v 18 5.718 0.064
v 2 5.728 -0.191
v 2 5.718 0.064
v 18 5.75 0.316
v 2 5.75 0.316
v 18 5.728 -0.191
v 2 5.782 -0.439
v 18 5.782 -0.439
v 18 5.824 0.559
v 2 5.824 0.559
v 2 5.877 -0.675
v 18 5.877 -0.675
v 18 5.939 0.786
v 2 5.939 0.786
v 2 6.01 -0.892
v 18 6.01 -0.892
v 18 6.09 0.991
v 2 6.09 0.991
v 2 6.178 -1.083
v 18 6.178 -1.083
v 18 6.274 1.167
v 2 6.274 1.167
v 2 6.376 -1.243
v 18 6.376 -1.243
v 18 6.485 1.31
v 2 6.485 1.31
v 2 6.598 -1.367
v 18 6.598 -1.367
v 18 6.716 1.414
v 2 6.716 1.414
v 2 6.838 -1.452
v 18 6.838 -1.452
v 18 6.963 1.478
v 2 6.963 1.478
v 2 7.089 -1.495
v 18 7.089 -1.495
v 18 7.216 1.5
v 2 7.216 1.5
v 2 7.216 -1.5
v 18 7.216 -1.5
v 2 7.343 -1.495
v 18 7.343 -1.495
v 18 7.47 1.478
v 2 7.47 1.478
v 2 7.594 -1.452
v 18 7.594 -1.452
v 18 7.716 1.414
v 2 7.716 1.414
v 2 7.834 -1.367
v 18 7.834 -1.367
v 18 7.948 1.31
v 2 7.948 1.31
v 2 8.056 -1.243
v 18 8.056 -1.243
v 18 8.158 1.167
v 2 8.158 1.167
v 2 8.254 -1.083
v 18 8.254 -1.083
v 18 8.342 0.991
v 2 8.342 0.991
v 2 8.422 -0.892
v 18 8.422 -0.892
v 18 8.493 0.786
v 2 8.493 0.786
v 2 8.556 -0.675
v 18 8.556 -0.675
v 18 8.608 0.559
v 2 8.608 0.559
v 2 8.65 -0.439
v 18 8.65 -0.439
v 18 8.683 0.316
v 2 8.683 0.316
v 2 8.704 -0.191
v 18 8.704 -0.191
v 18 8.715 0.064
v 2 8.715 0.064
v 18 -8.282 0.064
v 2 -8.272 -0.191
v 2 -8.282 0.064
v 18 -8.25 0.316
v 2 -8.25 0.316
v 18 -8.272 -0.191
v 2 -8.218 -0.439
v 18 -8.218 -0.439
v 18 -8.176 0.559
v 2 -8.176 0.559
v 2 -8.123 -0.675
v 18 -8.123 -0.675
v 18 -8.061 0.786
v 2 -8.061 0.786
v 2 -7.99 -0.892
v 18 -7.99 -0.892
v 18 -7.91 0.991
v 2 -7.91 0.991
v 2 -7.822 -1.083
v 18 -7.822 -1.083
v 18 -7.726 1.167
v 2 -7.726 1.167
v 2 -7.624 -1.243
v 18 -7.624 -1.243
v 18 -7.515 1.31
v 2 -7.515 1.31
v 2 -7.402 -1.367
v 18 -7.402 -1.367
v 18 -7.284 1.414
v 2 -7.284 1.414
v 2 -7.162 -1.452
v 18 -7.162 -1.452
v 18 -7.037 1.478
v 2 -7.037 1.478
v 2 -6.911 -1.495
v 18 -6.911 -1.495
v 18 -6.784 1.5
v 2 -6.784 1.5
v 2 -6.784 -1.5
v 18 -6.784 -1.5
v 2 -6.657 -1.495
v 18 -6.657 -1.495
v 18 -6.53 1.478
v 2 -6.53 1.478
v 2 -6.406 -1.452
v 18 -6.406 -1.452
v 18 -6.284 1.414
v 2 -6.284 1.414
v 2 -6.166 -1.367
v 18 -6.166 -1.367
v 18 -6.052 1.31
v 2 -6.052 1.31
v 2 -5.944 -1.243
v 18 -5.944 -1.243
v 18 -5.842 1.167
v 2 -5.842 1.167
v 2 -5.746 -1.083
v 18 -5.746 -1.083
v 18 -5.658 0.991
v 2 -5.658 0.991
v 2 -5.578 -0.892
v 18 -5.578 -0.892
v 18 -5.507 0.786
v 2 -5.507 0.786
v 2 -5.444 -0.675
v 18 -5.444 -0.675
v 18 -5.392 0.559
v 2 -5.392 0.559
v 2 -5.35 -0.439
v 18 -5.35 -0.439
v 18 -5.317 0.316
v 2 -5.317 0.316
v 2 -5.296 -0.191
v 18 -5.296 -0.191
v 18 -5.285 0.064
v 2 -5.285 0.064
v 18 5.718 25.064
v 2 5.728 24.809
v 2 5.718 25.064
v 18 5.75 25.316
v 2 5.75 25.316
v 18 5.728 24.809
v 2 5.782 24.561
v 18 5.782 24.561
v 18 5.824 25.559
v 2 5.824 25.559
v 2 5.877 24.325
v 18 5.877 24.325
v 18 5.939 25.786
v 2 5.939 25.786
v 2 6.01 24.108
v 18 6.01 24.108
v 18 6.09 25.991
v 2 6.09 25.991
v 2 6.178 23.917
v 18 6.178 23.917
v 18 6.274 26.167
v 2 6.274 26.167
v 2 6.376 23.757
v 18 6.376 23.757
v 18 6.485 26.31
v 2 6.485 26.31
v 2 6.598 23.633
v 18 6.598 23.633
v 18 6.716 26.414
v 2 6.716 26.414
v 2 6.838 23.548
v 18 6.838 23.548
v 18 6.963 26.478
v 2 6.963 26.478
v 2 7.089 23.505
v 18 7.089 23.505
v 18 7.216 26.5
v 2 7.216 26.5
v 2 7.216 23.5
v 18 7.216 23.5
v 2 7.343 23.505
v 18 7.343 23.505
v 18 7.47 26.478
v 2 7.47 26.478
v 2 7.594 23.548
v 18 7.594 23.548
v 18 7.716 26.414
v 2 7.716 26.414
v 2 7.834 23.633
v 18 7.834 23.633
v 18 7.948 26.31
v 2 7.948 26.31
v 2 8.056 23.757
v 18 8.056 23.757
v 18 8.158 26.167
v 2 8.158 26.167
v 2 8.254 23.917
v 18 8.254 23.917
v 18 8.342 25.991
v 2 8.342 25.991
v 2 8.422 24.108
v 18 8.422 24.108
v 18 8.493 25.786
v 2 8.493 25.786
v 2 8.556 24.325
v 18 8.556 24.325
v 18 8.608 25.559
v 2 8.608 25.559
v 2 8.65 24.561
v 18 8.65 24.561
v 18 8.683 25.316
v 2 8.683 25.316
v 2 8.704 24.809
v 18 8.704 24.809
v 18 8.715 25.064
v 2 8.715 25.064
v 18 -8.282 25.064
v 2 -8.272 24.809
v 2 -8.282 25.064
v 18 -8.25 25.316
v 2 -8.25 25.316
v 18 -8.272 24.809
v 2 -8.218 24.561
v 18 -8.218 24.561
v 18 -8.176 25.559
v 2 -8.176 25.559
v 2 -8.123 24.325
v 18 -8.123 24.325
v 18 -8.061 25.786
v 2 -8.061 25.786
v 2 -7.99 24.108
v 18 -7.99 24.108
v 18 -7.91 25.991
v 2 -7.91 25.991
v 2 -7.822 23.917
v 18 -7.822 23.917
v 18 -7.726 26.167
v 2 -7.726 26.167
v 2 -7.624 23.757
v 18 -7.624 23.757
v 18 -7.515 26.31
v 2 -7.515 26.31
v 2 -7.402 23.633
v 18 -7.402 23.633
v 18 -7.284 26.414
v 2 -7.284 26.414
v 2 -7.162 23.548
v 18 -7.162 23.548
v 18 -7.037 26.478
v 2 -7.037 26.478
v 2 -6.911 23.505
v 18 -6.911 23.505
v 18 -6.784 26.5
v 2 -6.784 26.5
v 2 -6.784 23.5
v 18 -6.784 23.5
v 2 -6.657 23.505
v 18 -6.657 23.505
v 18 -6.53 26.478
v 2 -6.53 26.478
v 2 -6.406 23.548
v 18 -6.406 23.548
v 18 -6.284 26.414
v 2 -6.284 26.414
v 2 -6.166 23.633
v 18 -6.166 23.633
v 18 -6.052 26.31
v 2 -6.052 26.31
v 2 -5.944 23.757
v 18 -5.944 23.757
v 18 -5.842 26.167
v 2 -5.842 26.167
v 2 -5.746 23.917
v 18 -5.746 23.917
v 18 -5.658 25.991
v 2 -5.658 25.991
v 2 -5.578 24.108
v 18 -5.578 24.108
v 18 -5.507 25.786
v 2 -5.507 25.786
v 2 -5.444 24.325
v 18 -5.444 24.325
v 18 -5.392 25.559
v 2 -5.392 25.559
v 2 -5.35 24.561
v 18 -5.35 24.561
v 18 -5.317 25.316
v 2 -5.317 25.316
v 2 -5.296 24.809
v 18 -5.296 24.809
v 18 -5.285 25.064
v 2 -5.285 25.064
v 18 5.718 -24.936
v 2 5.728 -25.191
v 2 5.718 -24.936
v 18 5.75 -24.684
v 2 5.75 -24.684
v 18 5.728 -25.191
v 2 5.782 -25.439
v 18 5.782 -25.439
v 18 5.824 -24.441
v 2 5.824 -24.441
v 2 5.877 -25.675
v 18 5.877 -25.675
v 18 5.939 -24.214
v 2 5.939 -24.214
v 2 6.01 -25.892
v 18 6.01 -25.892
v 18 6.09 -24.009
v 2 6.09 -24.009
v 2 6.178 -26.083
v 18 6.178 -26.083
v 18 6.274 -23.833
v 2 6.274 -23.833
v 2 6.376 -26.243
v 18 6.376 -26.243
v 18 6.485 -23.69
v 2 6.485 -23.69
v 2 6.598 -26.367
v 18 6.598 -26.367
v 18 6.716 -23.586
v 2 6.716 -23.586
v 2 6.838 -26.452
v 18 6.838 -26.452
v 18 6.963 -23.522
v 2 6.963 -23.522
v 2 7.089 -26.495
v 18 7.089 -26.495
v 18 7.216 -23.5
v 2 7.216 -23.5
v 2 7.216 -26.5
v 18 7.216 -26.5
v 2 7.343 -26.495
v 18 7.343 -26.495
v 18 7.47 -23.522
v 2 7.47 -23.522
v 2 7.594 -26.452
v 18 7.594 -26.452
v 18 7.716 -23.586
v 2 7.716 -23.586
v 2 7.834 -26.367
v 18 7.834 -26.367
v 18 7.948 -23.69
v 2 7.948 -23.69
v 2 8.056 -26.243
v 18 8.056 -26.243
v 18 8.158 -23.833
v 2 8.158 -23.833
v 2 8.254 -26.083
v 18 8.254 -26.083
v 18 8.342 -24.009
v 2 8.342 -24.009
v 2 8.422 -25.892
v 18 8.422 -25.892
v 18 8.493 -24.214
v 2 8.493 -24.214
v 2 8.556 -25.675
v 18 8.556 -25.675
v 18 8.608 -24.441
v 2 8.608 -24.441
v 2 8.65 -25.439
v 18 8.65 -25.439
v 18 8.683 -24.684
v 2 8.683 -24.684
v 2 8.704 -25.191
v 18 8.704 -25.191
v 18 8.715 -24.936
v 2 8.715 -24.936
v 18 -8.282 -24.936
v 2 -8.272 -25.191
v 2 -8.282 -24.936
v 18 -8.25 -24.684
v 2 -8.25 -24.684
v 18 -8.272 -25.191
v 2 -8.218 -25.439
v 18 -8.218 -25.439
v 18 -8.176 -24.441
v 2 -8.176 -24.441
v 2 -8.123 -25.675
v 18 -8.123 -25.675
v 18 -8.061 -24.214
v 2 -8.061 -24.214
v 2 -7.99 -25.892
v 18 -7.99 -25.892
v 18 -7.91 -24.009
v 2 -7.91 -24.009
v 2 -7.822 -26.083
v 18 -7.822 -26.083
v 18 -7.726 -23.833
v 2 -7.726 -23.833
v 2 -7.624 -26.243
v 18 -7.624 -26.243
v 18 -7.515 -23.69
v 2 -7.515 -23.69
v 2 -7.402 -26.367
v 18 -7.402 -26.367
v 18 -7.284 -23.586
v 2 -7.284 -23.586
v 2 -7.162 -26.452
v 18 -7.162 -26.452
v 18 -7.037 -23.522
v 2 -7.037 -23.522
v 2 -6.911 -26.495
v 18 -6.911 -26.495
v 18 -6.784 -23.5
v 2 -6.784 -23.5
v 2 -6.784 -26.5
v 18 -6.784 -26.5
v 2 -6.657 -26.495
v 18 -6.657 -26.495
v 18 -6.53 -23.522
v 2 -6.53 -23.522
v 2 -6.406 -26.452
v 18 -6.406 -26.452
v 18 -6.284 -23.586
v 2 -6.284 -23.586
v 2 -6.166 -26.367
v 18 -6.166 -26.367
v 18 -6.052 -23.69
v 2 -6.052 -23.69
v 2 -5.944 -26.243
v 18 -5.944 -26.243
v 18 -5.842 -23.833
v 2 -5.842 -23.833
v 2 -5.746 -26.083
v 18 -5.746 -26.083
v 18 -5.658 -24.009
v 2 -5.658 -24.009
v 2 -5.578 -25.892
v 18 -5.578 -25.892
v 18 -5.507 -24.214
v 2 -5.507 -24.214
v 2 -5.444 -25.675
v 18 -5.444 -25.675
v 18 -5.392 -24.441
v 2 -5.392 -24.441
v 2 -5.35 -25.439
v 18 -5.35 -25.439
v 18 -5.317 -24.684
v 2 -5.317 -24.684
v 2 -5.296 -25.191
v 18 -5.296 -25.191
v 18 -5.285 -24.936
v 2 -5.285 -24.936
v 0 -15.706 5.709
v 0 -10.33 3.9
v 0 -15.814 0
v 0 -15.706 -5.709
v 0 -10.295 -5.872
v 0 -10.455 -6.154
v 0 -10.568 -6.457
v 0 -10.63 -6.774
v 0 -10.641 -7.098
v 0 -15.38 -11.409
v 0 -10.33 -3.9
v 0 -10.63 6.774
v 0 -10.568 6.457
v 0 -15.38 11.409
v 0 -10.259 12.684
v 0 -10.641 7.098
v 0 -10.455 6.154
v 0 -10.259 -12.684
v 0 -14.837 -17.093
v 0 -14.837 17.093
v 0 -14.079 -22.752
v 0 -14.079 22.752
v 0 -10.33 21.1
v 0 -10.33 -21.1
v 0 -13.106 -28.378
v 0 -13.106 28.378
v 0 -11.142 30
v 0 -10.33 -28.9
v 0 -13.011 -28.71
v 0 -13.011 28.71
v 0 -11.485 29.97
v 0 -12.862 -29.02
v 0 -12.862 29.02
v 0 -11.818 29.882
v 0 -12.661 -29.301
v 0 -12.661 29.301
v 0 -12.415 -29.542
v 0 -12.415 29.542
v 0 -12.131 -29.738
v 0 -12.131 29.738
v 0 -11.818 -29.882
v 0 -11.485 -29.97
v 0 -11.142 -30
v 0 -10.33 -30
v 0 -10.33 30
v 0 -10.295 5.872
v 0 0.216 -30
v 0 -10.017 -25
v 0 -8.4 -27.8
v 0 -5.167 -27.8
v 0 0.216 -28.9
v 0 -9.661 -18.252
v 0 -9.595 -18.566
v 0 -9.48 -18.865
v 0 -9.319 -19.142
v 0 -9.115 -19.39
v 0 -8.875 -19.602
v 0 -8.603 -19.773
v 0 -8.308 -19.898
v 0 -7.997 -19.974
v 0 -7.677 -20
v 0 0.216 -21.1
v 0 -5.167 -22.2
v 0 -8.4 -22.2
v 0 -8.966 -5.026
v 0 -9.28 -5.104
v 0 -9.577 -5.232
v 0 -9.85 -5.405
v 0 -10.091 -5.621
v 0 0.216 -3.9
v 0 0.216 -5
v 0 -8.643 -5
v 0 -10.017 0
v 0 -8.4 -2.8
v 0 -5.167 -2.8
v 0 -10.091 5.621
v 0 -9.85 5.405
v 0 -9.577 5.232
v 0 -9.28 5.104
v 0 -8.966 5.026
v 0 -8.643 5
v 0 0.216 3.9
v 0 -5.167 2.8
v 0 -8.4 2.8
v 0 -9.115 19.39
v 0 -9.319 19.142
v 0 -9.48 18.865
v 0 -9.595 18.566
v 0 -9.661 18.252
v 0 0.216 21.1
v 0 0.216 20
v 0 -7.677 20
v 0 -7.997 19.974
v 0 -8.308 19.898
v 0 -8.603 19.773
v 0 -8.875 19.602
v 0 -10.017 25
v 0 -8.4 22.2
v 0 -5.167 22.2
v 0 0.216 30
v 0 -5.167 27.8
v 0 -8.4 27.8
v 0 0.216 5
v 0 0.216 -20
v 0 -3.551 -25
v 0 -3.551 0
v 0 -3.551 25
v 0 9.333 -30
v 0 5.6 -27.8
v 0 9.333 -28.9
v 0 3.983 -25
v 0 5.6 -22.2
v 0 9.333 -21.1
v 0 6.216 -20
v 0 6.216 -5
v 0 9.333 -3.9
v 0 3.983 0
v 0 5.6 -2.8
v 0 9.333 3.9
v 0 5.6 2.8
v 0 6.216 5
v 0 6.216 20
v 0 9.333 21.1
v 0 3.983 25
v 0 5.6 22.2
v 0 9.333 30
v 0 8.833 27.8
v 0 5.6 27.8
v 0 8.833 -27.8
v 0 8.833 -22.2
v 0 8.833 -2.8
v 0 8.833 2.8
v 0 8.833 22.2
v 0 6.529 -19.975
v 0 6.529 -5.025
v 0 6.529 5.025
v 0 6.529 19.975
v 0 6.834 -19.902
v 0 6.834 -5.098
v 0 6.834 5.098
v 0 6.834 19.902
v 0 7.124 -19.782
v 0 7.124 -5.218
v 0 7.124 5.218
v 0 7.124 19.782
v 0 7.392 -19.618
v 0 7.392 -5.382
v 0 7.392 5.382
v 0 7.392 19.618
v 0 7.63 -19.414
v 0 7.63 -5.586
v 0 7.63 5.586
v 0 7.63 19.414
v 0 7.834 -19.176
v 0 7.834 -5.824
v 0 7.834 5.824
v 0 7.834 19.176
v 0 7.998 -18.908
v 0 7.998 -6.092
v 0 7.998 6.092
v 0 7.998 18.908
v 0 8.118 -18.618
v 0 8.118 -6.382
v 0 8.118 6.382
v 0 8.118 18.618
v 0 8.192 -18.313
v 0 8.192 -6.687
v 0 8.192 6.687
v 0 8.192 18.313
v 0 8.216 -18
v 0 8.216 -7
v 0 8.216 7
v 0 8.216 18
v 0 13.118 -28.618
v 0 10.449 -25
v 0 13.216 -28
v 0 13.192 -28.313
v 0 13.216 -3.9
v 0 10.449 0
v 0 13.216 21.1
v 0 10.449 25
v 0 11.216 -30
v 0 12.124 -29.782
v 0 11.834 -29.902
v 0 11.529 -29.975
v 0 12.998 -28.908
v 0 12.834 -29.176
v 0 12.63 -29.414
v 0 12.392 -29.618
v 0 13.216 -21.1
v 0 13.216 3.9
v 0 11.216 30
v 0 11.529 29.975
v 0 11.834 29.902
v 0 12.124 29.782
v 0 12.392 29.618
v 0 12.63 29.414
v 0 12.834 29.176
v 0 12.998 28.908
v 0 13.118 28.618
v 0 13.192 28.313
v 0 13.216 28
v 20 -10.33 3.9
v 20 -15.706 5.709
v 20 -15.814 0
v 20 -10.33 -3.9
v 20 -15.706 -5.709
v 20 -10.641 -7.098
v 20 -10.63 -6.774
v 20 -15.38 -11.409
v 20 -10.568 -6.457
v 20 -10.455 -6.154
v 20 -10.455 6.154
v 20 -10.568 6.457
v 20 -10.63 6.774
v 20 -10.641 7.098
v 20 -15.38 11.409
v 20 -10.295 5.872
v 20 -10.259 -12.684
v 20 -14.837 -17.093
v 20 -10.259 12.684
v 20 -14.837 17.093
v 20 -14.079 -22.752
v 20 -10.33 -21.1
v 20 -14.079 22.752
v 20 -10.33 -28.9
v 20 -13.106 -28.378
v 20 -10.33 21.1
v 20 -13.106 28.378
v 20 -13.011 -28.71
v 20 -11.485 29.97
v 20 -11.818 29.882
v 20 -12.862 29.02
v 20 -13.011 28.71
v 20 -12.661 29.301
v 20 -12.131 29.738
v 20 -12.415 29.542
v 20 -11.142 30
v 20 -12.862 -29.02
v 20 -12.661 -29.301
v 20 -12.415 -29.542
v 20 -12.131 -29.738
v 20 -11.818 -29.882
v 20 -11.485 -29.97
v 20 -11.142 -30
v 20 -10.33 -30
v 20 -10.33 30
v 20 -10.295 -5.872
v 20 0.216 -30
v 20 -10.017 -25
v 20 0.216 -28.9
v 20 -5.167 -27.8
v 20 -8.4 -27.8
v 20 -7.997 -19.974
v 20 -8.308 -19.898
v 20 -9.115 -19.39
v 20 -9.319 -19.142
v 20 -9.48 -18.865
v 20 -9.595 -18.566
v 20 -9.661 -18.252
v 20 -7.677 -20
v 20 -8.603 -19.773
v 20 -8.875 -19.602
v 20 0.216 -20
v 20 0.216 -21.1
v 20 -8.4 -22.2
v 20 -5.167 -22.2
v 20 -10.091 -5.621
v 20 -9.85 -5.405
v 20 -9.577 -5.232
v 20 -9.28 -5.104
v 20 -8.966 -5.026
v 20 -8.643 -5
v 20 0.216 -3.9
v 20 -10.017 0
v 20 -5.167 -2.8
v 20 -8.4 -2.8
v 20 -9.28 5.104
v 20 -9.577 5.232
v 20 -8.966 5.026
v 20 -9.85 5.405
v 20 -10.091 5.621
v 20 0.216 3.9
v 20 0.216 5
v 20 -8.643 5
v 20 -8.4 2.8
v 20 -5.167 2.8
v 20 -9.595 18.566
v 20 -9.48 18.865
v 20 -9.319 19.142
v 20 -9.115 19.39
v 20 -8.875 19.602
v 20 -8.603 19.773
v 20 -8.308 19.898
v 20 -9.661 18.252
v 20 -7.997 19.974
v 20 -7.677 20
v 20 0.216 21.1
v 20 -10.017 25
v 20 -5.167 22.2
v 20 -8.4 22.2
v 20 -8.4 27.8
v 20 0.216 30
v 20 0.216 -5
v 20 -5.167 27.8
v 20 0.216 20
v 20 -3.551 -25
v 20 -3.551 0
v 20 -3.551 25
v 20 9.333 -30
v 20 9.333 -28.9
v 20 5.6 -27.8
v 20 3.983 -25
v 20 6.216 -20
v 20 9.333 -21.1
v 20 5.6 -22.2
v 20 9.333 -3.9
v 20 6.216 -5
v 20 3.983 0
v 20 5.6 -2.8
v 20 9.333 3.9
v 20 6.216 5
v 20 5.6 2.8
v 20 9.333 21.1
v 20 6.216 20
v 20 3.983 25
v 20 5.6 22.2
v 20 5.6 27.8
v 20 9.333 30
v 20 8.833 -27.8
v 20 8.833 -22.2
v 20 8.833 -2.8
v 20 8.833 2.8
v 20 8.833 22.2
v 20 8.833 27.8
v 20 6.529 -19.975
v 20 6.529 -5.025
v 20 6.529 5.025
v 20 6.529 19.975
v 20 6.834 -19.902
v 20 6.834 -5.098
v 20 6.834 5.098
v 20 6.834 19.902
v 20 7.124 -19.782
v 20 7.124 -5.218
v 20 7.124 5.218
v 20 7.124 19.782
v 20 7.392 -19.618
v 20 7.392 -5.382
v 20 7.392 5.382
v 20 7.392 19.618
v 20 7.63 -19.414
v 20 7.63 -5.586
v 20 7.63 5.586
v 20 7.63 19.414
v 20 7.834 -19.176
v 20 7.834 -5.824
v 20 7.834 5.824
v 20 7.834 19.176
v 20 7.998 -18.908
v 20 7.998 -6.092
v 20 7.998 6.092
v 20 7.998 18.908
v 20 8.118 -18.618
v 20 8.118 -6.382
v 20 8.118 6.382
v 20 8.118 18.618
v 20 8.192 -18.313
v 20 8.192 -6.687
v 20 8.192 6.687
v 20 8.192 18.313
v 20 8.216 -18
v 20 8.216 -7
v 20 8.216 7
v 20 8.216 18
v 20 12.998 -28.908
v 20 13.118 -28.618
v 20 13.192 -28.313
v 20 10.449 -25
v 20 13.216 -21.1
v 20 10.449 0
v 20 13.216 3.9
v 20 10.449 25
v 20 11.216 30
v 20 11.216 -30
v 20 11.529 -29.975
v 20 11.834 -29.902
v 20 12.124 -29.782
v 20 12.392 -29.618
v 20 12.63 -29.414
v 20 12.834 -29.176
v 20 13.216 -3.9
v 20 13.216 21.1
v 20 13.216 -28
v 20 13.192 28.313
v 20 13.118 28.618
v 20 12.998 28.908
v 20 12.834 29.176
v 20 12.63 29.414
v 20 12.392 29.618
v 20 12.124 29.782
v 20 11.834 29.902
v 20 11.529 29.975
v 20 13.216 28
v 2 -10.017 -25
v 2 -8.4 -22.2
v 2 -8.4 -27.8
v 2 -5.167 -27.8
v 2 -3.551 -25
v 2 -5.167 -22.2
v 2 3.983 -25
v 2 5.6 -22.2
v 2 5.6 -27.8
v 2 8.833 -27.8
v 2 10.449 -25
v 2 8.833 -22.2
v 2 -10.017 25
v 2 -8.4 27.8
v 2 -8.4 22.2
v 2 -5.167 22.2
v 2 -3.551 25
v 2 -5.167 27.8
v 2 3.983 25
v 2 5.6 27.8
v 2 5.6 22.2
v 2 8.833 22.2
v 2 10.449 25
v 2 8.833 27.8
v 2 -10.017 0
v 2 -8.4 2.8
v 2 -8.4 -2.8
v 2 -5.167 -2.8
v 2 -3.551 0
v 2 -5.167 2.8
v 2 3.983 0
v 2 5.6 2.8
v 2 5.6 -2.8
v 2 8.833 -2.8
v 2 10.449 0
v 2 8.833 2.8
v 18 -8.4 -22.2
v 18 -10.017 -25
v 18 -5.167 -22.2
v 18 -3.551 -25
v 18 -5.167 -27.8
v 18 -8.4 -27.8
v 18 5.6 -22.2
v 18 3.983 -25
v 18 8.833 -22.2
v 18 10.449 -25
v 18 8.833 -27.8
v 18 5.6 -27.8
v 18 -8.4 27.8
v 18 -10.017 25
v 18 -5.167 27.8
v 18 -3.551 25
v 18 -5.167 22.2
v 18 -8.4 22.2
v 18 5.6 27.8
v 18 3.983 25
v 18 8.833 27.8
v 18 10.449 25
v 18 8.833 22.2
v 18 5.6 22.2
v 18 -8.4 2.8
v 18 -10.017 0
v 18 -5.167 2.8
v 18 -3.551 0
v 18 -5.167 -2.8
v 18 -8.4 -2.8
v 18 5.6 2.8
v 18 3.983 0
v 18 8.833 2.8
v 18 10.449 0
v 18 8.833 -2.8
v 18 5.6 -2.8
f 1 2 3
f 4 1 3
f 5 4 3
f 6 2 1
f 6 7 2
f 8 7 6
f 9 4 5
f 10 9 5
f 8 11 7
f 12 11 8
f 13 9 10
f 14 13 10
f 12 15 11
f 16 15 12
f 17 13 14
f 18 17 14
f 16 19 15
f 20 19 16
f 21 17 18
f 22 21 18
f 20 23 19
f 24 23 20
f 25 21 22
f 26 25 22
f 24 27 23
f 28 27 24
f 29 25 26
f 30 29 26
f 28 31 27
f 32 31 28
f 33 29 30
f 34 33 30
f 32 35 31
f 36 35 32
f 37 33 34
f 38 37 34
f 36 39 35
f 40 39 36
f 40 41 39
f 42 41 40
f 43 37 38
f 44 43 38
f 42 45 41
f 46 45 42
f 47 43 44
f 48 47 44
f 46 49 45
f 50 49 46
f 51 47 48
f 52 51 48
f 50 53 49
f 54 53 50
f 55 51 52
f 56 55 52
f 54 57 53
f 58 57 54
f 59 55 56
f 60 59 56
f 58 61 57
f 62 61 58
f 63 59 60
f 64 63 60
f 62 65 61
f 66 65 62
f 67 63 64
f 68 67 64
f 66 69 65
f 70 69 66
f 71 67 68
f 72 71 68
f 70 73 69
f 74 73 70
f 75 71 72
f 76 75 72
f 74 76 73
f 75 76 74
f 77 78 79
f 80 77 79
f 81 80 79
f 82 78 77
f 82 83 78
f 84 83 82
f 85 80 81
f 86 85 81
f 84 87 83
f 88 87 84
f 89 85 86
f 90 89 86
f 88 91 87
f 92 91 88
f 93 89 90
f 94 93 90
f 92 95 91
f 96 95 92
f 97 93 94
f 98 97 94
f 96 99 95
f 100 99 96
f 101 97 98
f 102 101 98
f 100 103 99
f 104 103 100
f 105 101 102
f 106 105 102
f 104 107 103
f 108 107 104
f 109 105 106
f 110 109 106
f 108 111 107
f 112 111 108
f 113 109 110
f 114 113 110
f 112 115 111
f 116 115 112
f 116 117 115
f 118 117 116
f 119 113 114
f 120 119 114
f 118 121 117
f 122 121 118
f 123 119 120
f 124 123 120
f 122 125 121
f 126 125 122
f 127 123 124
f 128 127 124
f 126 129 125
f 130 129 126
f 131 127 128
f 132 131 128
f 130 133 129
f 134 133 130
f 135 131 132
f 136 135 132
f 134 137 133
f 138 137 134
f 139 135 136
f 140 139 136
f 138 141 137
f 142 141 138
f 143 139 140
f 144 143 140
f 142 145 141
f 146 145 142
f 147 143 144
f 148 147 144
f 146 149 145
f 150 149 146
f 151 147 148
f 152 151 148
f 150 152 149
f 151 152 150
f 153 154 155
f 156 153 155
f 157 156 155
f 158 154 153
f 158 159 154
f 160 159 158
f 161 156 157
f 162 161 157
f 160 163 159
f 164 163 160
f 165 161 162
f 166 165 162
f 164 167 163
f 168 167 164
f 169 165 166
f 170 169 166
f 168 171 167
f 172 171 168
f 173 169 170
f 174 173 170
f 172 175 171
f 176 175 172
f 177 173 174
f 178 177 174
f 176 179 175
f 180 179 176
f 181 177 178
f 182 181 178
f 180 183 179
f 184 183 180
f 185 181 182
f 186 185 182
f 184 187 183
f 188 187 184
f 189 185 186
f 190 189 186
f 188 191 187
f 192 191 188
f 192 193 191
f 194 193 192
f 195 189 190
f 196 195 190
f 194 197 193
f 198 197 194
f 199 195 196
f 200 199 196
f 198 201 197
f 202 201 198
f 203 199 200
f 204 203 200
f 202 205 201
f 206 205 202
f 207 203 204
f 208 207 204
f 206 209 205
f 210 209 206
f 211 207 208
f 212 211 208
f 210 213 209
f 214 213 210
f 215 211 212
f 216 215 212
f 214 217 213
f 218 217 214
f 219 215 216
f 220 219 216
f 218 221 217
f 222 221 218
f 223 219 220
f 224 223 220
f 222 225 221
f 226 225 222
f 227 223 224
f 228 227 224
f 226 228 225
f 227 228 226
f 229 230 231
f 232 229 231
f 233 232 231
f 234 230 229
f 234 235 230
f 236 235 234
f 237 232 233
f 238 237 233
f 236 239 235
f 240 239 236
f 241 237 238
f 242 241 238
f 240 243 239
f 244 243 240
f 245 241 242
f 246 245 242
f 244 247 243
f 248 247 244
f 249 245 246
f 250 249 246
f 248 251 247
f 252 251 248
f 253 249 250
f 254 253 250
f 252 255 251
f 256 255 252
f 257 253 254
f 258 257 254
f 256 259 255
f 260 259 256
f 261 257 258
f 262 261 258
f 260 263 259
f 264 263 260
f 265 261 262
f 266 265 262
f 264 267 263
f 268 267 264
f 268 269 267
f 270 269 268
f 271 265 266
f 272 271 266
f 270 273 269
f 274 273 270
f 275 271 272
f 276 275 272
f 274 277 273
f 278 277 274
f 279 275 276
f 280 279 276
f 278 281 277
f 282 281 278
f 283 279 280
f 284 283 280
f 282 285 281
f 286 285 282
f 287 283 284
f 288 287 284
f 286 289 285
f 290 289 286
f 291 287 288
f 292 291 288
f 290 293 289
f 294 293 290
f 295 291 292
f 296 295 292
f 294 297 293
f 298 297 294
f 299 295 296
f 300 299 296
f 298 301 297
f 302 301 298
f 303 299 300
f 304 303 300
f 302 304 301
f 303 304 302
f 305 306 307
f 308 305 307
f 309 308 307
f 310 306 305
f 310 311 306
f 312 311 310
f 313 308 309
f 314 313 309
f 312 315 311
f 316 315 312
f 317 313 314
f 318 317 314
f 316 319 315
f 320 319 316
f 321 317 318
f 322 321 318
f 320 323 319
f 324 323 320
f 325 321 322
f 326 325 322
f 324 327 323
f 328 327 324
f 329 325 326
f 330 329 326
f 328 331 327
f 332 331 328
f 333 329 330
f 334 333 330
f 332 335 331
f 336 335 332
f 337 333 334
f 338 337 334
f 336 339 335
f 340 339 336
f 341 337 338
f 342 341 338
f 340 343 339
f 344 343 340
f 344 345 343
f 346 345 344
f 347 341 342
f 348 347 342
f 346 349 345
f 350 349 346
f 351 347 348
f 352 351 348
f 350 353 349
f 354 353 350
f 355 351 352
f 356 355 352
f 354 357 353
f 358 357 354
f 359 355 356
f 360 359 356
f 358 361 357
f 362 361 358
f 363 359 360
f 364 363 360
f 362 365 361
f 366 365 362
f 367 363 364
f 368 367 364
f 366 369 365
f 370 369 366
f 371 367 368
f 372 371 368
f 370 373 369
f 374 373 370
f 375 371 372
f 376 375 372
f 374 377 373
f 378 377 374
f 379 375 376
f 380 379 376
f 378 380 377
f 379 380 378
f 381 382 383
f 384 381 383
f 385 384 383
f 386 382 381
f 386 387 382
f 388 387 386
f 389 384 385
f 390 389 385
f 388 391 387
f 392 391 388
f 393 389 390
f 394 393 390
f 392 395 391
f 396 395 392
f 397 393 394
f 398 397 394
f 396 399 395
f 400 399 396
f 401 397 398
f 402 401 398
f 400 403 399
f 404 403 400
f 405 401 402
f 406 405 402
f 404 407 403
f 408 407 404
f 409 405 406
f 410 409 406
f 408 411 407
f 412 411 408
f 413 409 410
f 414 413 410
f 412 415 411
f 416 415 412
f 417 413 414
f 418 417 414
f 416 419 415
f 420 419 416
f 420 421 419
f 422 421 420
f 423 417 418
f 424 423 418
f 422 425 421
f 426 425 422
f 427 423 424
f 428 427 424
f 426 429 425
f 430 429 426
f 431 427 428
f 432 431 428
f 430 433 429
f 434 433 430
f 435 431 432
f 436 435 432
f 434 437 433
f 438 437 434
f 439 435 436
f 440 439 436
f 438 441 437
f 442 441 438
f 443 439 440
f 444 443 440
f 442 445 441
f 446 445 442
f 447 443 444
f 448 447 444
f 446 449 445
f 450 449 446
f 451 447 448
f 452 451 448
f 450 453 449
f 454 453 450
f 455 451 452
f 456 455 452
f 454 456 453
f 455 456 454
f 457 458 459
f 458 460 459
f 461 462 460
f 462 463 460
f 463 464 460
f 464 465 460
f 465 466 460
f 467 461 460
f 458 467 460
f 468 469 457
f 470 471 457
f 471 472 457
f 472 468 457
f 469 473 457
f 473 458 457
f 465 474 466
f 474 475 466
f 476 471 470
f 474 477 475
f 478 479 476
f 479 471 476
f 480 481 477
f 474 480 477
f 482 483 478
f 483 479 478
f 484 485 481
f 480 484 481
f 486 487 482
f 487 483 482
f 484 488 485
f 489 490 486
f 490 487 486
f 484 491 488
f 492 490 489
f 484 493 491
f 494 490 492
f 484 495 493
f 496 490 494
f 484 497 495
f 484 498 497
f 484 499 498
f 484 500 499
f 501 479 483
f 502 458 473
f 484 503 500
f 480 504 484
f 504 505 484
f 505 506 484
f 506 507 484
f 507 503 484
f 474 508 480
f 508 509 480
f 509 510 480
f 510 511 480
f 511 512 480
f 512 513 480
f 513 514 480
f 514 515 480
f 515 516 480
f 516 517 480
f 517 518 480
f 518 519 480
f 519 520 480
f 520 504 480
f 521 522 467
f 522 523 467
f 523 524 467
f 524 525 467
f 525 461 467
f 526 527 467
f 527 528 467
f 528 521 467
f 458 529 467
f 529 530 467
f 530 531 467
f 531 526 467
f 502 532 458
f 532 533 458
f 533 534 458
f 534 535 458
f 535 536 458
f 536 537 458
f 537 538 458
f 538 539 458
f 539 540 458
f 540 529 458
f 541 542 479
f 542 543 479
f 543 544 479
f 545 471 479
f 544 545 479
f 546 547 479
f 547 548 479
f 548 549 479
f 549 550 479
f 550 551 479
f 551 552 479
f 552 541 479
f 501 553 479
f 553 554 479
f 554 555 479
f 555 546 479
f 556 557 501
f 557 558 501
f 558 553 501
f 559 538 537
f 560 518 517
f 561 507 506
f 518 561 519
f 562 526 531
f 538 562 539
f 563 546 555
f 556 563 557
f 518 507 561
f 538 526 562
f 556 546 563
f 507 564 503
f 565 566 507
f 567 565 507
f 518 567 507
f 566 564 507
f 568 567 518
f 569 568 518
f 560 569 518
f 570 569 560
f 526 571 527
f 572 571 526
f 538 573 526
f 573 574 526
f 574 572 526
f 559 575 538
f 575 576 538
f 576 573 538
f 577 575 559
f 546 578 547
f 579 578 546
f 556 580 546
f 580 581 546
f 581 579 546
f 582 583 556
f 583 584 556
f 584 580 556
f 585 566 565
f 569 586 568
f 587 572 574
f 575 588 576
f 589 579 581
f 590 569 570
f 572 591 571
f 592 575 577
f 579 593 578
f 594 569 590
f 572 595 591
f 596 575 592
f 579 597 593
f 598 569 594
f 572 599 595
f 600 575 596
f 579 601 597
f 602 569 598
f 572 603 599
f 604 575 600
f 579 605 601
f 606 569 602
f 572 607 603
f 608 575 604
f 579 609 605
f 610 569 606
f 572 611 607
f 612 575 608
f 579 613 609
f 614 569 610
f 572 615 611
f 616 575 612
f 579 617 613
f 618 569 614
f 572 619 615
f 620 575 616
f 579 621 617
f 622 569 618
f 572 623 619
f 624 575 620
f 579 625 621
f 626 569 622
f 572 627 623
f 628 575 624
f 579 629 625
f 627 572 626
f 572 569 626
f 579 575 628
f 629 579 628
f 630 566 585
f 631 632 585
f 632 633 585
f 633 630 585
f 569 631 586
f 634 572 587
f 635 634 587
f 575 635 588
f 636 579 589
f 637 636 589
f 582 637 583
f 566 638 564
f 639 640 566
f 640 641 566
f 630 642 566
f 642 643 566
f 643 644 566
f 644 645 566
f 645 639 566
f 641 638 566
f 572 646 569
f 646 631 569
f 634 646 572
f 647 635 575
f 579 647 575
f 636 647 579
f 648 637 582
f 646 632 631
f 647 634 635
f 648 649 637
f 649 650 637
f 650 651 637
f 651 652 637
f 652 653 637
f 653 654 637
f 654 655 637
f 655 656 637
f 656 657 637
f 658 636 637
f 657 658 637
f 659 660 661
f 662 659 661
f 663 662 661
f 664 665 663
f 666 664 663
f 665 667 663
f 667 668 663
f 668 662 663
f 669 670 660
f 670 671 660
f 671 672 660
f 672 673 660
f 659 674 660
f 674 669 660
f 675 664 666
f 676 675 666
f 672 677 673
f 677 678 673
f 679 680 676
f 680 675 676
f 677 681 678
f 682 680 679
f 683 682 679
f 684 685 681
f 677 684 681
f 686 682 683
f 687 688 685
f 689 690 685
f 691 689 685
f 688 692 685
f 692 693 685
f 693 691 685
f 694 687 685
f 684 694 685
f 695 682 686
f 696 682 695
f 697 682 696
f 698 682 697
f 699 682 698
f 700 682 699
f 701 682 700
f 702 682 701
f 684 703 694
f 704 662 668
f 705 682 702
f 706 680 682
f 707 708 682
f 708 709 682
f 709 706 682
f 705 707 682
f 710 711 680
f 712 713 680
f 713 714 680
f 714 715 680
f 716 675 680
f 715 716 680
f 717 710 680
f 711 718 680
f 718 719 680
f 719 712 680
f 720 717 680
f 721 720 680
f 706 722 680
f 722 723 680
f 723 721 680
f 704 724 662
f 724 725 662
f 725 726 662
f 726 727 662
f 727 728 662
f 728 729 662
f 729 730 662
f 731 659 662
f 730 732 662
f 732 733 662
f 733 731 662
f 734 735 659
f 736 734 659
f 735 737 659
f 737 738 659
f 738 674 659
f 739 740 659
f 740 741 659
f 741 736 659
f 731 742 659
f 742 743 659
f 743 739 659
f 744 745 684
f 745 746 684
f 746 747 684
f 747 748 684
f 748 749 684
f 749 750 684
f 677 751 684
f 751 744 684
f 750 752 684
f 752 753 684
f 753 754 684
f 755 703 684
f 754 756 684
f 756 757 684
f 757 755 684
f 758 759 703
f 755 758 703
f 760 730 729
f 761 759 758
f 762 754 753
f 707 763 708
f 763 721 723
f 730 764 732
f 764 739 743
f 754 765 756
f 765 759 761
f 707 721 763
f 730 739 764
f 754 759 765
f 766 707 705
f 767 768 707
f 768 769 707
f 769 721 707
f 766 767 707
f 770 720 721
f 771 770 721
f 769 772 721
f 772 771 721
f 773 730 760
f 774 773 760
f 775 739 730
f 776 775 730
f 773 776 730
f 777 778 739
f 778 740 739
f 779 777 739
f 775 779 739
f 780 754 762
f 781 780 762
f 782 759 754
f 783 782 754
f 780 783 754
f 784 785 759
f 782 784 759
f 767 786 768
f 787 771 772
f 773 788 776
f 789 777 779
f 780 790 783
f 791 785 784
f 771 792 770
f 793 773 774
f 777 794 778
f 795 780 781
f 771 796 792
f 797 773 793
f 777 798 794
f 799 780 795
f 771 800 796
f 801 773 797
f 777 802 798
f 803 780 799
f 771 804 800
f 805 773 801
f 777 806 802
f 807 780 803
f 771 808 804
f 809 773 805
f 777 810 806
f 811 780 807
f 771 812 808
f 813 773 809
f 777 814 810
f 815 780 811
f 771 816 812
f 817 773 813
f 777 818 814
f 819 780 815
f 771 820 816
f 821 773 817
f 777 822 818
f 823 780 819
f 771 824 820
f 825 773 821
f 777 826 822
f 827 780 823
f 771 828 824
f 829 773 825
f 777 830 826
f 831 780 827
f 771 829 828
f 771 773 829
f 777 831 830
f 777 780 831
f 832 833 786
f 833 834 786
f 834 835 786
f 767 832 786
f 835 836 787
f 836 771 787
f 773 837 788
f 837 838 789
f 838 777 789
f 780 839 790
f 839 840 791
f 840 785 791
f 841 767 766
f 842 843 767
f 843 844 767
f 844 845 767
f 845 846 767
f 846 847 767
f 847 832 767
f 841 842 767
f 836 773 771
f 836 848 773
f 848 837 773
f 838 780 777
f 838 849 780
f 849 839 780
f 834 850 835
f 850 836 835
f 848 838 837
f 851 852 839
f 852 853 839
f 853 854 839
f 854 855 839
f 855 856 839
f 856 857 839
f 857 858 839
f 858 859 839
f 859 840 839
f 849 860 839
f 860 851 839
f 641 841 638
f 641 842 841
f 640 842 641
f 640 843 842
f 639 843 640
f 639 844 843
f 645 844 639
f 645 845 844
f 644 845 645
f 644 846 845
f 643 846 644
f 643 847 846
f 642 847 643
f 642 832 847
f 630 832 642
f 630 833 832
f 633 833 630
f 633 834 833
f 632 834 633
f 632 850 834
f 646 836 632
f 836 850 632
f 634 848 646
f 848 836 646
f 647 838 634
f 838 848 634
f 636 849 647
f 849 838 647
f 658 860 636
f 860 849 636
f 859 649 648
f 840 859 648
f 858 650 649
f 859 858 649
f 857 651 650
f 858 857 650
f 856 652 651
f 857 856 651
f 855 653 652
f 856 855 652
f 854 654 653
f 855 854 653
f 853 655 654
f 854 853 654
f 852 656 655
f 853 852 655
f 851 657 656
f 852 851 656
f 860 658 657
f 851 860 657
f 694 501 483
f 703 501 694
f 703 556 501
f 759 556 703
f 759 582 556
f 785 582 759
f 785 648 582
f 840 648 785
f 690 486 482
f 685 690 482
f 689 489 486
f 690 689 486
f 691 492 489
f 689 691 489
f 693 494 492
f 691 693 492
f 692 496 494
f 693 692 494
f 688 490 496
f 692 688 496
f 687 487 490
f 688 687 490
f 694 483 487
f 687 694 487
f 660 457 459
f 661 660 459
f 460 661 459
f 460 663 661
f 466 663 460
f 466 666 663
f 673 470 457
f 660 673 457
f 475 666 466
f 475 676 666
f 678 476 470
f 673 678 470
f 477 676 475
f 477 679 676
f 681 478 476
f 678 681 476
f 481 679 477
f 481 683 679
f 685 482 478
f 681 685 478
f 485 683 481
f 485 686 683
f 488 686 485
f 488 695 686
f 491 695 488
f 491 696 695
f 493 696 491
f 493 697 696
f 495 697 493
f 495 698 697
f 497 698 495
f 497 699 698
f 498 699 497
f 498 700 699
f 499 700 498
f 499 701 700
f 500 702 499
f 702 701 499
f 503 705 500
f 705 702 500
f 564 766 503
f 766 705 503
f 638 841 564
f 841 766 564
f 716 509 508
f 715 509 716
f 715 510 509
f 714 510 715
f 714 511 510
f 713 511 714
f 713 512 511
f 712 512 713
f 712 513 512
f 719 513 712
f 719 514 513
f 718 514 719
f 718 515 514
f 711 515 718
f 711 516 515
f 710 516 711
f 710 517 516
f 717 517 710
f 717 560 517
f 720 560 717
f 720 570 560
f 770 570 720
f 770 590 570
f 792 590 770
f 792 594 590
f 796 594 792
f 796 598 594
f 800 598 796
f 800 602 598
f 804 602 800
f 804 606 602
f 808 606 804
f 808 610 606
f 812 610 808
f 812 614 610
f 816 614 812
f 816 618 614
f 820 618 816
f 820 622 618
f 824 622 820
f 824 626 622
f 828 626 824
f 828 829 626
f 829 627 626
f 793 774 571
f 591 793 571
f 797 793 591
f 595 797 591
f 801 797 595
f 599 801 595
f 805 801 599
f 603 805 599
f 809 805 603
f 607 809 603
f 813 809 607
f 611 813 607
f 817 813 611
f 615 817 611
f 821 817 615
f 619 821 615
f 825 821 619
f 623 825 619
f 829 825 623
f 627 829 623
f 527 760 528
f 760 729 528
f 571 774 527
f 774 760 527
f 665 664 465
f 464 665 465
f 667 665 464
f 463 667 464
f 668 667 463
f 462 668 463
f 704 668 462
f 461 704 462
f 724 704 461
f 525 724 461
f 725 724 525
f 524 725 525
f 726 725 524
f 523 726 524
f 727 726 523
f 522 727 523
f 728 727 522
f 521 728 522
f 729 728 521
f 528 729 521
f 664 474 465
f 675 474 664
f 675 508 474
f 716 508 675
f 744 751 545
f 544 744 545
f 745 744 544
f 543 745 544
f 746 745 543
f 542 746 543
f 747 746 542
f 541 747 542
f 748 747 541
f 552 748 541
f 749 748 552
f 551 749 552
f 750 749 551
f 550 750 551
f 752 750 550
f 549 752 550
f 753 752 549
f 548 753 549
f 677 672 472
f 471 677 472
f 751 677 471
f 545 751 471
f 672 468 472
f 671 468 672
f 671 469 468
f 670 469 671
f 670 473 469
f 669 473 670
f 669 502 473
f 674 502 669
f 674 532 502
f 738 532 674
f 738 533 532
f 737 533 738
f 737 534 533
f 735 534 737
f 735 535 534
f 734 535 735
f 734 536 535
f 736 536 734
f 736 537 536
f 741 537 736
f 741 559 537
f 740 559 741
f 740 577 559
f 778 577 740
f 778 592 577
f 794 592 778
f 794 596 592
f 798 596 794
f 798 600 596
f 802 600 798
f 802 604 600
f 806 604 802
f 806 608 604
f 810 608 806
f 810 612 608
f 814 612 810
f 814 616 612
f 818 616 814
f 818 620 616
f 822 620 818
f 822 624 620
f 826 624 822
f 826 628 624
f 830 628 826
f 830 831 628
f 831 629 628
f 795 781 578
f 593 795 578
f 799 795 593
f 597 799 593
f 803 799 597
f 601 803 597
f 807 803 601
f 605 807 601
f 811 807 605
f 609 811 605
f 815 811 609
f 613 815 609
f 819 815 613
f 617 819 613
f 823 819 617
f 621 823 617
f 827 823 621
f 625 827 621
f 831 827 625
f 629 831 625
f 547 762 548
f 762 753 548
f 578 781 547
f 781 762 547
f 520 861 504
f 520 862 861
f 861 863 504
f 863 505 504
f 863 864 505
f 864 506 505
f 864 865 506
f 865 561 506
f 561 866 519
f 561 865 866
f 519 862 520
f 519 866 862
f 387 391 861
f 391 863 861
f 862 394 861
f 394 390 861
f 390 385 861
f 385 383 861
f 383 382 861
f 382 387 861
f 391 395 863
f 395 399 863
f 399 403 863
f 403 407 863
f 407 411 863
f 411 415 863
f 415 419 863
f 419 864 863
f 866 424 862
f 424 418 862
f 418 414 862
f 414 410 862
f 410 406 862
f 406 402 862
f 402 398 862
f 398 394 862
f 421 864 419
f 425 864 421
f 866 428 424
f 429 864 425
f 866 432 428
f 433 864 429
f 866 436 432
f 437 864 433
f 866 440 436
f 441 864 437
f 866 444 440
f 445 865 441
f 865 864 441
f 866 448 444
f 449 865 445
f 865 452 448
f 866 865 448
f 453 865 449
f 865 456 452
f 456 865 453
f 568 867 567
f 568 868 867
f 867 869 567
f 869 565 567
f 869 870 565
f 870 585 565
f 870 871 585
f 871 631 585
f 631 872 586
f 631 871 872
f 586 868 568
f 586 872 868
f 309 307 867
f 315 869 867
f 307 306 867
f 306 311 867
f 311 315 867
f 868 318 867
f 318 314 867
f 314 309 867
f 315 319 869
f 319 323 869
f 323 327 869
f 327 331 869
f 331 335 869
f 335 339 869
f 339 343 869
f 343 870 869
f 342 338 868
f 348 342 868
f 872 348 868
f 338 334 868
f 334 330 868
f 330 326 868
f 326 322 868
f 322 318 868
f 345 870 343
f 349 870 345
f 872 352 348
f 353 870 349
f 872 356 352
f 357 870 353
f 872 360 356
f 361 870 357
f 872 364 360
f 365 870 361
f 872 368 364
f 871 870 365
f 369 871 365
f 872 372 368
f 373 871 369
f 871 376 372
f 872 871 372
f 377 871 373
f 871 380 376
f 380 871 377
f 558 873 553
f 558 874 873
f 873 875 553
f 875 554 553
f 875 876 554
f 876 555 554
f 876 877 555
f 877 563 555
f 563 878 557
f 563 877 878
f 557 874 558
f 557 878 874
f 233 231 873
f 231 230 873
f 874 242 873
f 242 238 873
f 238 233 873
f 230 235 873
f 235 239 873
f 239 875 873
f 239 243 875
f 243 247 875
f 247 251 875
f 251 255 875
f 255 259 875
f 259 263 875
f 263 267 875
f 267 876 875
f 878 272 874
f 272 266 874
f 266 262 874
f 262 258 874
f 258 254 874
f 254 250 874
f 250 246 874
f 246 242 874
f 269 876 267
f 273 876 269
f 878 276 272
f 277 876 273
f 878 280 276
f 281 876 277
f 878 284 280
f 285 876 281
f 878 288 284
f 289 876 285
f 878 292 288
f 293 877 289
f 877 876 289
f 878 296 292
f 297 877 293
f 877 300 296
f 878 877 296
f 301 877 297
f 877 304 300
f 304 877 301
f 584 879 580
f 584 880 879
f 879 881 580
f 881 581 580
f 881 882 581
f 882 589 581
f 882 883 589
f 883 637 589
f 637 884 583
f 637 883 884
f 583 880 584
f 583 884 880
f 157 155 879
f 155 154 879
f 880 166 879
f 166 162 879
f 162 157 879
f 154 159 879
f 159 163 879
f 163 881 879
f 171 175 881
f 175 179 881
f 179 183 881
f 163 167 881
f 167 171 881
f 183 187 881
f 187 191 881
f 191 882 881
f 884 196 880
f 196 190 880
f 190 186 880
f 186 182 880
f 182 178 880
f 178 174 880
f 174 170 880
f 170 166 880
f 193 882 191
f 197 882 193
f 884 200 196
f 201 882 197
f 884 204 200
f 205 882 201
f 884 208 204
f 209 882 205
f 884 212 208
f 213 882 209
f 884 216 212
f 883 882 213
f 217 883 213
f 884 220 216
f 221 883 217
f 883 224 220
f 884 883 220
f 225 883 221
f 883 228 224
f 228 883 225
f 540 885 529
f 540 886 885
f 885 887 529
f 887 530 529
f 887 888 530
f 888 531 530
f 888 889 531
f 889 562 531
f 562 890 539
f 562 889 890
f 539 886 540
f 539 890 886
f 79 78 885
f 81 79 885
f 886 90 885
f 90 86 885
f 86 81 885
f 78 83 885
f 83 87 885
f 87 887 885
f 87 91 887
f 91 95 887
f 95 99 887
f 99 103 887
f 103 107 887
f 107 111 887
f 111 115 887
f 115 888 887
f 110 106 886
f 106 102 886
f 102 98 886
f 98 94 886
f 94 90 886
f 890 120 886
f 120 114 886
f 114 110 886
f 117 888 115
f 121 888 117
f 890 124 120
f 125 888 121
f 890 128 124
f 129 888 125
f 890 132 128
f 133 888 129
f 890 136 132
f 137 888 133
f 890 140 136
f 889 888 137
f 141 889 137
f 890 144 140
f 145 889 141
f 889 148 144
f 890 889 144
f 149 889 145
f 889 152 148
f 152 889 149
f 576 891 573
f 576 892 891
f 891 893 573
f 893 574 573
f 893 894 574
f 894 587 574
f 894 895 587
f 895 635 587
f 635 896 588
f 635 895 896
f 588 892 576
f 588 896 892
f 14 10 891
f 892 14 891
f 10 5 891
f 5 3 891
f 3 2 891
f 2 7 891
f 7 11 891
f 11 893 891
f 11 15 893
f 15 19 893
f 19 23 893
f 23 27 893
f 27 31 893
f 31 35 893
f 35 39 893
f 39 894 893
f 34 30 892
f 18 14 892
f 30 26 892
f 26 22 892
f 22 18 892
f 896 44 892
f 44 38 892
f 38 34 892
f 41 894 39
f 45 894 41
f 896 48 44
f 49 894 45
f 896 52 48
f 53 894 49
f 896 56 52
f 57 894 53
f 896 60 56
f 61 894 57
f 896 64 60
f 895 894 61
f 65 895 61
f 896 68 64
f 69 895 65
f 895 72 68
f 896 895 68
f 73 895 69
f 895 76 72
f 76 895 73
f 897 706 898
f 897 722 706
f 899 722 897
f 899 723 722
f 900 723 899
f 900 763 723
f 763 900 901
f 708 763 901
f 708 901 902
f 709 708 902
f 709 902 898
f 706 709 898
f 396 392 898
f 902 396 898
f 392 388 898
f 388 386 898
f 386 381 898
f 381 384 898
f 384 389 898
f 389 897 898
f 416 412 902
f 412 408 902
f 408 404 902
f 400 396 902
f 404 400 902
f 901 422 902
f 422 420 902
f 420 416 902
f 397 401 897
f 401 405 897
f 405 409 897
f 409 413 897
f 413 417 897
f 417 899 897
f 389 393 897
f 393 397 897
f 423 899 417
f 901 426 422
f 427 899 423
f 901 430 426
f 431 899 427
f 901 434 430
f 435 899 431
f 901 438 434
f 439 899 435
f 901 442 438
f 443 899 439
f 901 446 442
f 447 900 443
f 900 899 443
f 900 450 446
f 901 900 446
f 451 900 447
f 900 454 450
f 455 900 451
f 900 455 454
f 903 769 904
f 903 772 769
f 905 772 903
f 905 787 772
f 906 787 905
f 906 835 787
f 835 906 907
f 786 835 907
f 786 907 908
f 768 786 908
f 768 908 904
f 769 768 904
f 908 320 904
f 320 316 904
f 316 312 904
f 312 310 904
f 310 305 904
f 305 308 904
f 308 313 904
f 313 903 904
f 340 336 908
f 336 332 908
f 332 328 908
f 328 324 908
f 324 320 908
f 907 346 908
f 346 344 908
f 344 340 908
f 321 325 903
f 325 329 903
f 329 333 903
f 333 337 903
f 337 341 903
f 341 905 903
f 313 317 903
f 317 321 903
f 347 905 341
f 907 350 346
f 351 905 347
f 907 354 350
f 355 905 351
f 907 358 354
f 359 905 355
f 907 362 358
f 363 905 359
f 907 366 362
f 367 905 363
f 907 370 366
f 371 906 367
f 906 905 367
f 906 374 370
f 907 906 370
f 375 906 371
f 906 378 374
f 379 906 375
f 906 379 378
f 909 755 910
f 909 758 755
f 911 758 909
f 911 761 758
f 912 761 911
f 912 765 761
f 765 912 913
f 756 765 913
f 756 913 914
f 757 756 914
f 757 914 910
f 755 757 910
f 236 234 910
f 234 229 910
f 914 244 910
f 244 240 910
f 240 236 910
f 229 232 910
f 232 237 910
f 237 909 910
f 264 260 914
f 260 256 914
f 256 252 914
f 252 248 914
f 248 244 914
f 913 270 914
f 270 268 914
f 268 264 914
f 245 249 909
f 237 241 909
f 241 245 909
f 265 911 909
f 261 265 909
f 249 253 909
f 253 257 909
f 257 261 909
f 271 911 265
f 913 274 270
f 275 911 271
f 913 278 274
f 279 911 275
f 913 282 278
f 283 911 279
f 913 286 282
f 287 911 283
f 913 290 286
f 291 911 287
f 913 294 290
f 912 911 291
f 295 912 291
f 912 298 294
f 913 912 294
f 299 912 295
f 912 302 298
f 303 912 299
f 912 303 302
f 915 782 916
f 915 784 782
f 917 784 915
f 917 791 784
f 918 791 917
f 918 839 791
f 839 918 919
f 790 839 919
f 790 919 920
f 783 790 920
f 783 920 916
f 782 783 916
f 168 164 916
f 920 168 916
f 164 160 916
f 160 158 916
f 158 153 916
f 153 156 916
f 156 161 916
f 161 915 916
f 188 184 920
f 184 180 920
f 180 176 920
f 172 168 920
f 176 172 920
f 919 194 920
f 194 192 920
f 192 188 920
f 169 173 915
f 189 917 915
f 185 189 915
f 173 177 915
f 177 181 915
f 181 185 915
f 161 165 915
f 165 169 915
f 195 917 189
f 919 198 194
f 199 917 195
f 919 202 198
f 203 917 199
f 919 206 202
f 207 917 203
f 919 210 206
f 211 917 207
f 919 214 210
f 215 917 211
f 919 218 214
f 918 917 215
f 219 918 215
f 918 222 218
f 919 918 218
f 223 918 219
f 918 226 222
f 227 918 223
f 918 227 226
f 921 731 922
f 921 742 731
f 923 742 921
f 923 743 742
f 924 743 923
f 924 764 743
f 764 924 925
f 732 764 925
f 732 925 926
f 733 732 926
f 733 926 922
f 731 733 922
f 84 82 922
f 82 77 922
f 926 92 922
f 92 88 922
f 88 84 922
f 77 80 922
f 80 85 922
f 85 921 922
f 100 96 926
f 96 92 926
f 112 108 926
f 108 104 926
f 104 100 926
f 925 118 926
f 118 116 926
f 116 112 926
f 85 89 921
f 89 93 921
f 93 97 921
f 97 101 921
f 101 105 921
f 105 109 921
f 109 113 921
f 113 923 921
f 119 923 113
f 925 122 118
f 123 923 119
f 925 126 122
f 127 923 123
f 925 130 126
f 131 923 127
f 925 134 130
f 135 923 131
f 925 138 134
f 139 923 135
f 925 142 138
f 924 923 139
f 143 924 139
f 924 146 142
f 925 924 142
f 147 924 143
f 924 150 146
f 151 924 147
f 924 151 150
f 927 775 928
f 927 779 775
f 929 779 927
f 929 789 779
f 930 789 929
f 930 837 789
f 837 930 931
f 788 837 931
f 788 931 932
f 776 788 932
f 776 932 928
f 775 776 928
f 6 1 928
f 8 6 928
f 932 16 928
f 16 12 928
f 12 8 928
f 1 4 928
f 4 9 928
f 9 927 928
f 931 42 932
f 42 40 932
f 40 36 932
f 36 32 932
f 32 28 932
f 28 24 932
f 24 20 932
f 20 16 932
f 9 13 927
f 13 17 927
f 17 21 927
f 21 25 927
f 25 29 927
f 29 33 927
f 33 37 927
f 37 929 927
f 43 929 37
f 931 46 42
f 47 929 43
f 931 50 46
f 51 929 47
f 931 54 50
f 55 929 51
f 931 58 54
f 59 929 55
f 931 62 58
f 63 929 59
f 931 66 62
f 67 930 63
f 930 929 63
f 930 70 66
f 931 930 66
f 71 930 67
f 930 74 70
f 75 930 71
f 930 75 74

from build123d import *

# Parameters (mm, degrees)
SKETCH1_R           = 1.5
BOSS_EXTRUDE1_DEPTH = 20
CUT_EXTRUDE1_DEPTH  = 2
CUT_EXTRUDE2_START  = 20
CUT_EXTRUDE2_DEPTH  = 2


with BuildPart() as part:
    # Sketch1 → Boss-Extrude1 (new body)
    with BuildSketch(Plane(origin=(0, 0, 0), x_dir=(0, 0, -1), z_dir=(1, 0, 0))):
        with BuildLine():
            Line((-28, 13.216168298), (28, 13.216168298))
            ThreePointArc((28, 13.216168298), (29.414213562, 12.63038186), (30, 11.216168298))
            Line((30, 11.216168298), (30, -11.141664132))
            ThreePointArc((30, -11.141664132), (29.542199202, -12.415093212), (28.378378378, -13.105545442))
            ThreePointArc((28.378378378, -13.105545442), (0, -15.814447135), (-28.378378378, -13.105545442))
            ThreePointArc((-28.378378378, -13.105545442), (-29.542199202, -12.415093212), (-30, -11.141664132))
            Line((-30, -11.141664132), (-30, 11.216168298))
            ThreePointArc((-30, 11.216168298), (-29.414213562, 12.63038186), (-28, 13.216168298))
        make_face()
        with Locations((0, 7.216168298)):
            Circle(SKETCH1_R, mode=Mode.SUBTRACT)
        with Locations((0, -6.783831702)):
            Circle(SKETCH1_R, mode=Mode.SUBTRACT)
        with Locations((-25, 7.216168298)):
            Circle(SKETCH1_R, mode=Mode.SUBTRACT)
        with Locations((-25, -6.783831702)):
            Circle(SKETCH1_R, mode=Mode.SUBTRACT)
        with Locations((25, 7.216168298)):
            Circle(SKETCH1_R, mode=Mode.SUBTRACT)
        with Locations((25, -6.783831702)):
            Circle(SKETCH1_R, mode=Mode.SUBTRACT)
        with BuildLine():
            Line((-20, 6.216168298), (-20, -7.677056726))
            ThreePointArc((-20, -7.677056726), (-19.500582637, -8.999271439), (-18.251748252, -9.661149168))
            ThreePointArc((-18.251748252, -9.661149168), (-12.684282914, -10.258585012), (-7.097902098, -10.640618063))
            ThreePointArc((-7.097902098, -10.640618063), (-5.620834346, -10.091429355), (-5, -8.643015706))
            Line((-5, -8.643015706), (-5, 6.216168298))
            ThreePointArc((-5, 6.216168298), (-5.585786438, 7.63038186), (-7, 8.216168298))
            Line((-7, 8.216168298), (-18, 8.216168298))
            ThreePointArc((-18, 8.216168298), (-19.414213562, 7.63038186), (-20, 6.216168298))
        make_face(mode=Mode.SUBTRACT)
        with BuildLine():
            Line((5, 6.216168298), (5, -8.643015706))
            ThreePointArc((5, -8.643015706), (5.620834346, -10.091429355), (7.097902098, -10.640618063))
            ThreePointArc((7.097902098, -10.640618063), (12.684282914, -10.258585012), (18.251748252, -9.661149168))
            ThreePointArc((18.251748252, -9.661149168), (19.500582637, -8.999271439), (20, -7.677056726))
            Line((20, -7.677056726), (20, 6.216168298))
            ThreePointArc((20, 6.216168298), (19.414213562, 7.63038186), (18, 8.216168298))
            Line((18, 8.216168298), (7, 8.216168298))
            ThreePointArc((7, 8.216168298), (5.585786438, 7.63038186), (5, 6.216168298))
        make_face(mode=Mode.SUBTRACT)
    extrude(amount=BOSS_EXTRUDE1_DEPTH)

    # Sketch2 → Cut-Extrude1 (cut)
    with BuildSketch(Plane(origin=(0, 0, 0), x_dir=(0, 0, -1), z_dir=(1, 0, 0))):
        Polygon((-25, 3.983006791), (-22.2, 5.599587544), (-22.2, 8.832749052), (-25, 10.449329806), (-27.8, 8.832749052), (-27.8, 5.599587544), align=None)
        Polygon((-25, -10.016993209), (-22.2, -8.400412456), (-22.2, -5.167250948), (-25, -3.550670194), (-27.8, -5.167250948), (-27.8, -8.400412456), align=None)
        Polygon((0, 3.983006791), (2.8, 5.599587544), (2.8, 8.832749052), (0, 10.449329806), (-2.8, 8.832749052), (-2.8, 5.599587544), align=None)
        Polygon((0, -10.016993209), (2.8, -8.400412456), (2.8, -5.167250948), (0, -3.550670194), (-2.8, -5.167250948), (-2.8, -8.400412456), align=None)
        Polygon((25, 3.983006791), (27.8, 5.599587544), (27.8, 8.832749052), (25, 10.449329806), (22.2, 8.832749052), (22.2, 5.599587544), align=None)
        Polygon((25, -10.016993209), (27.8, -8.400412456), (27.8, -5.167250948), (25, -3.550670194), (22.2, -5.167250948), (22.2, -8.400412456), align=None)
    extrude(amount=CUT_EXTRUDE1_DEPTH, mode=Mode.SUBTRACT)

    # Sketch2<2> → Cut-Extrude2 (cut)
    with BuildSketch(Plane(origin=(0, 0, 0), x_dir=(0, 0, -1), z_dir=(1, 0, 0)).offset(CUT_EXTRUDE2_START)):
        Polygon((-25, 3.983006791), (-22.2, 5.599587544), (-22.2, 8.832749052), (-25, 10.449329806), (-27.8, 8.832749052), (-27.8, 5.599587544), align=None)
        Polygon((-25, -10.016993209), (-22.2, -8.400412456), (-22.2, -5.167250948), (-25, -3.550670194), (-27.8, -5.167250948), (-27.8, -8.400412456), align=None)
        Polygon((0, 3.983006791), (2.8, 5.599587544), (2.8, 8.832749052), (0, 10.449329806), (-2.8, 8.832749052), (-2.8, 5.599587544), align=None)
        Polygon((0, -10.016993209), (2.8, -8.400412456), (2.8, -5.167250948), (0, -3.550670194), (-2.8, -5.167250948), (-2.8, -8.400412456), align=None)
        Polygon((25, 3.983006791), (27.8, 5.599587544), (27.8, 8.832749052), (25, 10.449329806), (22.2, 8.832749052), (22.2, 5.599587544), align=None)
        Polygon((25, -10.016993209), (27.8, -8.400412456), (27.8, -5.167250948), (25, -3.550670194), (22.2, -5.167250948), (22.2, -8.400412456), align=None)
    extrude(amount=-CUT_EXTRUDE2_DEPTH, mode=Mode.SUBTRACT)


solid = part.part
